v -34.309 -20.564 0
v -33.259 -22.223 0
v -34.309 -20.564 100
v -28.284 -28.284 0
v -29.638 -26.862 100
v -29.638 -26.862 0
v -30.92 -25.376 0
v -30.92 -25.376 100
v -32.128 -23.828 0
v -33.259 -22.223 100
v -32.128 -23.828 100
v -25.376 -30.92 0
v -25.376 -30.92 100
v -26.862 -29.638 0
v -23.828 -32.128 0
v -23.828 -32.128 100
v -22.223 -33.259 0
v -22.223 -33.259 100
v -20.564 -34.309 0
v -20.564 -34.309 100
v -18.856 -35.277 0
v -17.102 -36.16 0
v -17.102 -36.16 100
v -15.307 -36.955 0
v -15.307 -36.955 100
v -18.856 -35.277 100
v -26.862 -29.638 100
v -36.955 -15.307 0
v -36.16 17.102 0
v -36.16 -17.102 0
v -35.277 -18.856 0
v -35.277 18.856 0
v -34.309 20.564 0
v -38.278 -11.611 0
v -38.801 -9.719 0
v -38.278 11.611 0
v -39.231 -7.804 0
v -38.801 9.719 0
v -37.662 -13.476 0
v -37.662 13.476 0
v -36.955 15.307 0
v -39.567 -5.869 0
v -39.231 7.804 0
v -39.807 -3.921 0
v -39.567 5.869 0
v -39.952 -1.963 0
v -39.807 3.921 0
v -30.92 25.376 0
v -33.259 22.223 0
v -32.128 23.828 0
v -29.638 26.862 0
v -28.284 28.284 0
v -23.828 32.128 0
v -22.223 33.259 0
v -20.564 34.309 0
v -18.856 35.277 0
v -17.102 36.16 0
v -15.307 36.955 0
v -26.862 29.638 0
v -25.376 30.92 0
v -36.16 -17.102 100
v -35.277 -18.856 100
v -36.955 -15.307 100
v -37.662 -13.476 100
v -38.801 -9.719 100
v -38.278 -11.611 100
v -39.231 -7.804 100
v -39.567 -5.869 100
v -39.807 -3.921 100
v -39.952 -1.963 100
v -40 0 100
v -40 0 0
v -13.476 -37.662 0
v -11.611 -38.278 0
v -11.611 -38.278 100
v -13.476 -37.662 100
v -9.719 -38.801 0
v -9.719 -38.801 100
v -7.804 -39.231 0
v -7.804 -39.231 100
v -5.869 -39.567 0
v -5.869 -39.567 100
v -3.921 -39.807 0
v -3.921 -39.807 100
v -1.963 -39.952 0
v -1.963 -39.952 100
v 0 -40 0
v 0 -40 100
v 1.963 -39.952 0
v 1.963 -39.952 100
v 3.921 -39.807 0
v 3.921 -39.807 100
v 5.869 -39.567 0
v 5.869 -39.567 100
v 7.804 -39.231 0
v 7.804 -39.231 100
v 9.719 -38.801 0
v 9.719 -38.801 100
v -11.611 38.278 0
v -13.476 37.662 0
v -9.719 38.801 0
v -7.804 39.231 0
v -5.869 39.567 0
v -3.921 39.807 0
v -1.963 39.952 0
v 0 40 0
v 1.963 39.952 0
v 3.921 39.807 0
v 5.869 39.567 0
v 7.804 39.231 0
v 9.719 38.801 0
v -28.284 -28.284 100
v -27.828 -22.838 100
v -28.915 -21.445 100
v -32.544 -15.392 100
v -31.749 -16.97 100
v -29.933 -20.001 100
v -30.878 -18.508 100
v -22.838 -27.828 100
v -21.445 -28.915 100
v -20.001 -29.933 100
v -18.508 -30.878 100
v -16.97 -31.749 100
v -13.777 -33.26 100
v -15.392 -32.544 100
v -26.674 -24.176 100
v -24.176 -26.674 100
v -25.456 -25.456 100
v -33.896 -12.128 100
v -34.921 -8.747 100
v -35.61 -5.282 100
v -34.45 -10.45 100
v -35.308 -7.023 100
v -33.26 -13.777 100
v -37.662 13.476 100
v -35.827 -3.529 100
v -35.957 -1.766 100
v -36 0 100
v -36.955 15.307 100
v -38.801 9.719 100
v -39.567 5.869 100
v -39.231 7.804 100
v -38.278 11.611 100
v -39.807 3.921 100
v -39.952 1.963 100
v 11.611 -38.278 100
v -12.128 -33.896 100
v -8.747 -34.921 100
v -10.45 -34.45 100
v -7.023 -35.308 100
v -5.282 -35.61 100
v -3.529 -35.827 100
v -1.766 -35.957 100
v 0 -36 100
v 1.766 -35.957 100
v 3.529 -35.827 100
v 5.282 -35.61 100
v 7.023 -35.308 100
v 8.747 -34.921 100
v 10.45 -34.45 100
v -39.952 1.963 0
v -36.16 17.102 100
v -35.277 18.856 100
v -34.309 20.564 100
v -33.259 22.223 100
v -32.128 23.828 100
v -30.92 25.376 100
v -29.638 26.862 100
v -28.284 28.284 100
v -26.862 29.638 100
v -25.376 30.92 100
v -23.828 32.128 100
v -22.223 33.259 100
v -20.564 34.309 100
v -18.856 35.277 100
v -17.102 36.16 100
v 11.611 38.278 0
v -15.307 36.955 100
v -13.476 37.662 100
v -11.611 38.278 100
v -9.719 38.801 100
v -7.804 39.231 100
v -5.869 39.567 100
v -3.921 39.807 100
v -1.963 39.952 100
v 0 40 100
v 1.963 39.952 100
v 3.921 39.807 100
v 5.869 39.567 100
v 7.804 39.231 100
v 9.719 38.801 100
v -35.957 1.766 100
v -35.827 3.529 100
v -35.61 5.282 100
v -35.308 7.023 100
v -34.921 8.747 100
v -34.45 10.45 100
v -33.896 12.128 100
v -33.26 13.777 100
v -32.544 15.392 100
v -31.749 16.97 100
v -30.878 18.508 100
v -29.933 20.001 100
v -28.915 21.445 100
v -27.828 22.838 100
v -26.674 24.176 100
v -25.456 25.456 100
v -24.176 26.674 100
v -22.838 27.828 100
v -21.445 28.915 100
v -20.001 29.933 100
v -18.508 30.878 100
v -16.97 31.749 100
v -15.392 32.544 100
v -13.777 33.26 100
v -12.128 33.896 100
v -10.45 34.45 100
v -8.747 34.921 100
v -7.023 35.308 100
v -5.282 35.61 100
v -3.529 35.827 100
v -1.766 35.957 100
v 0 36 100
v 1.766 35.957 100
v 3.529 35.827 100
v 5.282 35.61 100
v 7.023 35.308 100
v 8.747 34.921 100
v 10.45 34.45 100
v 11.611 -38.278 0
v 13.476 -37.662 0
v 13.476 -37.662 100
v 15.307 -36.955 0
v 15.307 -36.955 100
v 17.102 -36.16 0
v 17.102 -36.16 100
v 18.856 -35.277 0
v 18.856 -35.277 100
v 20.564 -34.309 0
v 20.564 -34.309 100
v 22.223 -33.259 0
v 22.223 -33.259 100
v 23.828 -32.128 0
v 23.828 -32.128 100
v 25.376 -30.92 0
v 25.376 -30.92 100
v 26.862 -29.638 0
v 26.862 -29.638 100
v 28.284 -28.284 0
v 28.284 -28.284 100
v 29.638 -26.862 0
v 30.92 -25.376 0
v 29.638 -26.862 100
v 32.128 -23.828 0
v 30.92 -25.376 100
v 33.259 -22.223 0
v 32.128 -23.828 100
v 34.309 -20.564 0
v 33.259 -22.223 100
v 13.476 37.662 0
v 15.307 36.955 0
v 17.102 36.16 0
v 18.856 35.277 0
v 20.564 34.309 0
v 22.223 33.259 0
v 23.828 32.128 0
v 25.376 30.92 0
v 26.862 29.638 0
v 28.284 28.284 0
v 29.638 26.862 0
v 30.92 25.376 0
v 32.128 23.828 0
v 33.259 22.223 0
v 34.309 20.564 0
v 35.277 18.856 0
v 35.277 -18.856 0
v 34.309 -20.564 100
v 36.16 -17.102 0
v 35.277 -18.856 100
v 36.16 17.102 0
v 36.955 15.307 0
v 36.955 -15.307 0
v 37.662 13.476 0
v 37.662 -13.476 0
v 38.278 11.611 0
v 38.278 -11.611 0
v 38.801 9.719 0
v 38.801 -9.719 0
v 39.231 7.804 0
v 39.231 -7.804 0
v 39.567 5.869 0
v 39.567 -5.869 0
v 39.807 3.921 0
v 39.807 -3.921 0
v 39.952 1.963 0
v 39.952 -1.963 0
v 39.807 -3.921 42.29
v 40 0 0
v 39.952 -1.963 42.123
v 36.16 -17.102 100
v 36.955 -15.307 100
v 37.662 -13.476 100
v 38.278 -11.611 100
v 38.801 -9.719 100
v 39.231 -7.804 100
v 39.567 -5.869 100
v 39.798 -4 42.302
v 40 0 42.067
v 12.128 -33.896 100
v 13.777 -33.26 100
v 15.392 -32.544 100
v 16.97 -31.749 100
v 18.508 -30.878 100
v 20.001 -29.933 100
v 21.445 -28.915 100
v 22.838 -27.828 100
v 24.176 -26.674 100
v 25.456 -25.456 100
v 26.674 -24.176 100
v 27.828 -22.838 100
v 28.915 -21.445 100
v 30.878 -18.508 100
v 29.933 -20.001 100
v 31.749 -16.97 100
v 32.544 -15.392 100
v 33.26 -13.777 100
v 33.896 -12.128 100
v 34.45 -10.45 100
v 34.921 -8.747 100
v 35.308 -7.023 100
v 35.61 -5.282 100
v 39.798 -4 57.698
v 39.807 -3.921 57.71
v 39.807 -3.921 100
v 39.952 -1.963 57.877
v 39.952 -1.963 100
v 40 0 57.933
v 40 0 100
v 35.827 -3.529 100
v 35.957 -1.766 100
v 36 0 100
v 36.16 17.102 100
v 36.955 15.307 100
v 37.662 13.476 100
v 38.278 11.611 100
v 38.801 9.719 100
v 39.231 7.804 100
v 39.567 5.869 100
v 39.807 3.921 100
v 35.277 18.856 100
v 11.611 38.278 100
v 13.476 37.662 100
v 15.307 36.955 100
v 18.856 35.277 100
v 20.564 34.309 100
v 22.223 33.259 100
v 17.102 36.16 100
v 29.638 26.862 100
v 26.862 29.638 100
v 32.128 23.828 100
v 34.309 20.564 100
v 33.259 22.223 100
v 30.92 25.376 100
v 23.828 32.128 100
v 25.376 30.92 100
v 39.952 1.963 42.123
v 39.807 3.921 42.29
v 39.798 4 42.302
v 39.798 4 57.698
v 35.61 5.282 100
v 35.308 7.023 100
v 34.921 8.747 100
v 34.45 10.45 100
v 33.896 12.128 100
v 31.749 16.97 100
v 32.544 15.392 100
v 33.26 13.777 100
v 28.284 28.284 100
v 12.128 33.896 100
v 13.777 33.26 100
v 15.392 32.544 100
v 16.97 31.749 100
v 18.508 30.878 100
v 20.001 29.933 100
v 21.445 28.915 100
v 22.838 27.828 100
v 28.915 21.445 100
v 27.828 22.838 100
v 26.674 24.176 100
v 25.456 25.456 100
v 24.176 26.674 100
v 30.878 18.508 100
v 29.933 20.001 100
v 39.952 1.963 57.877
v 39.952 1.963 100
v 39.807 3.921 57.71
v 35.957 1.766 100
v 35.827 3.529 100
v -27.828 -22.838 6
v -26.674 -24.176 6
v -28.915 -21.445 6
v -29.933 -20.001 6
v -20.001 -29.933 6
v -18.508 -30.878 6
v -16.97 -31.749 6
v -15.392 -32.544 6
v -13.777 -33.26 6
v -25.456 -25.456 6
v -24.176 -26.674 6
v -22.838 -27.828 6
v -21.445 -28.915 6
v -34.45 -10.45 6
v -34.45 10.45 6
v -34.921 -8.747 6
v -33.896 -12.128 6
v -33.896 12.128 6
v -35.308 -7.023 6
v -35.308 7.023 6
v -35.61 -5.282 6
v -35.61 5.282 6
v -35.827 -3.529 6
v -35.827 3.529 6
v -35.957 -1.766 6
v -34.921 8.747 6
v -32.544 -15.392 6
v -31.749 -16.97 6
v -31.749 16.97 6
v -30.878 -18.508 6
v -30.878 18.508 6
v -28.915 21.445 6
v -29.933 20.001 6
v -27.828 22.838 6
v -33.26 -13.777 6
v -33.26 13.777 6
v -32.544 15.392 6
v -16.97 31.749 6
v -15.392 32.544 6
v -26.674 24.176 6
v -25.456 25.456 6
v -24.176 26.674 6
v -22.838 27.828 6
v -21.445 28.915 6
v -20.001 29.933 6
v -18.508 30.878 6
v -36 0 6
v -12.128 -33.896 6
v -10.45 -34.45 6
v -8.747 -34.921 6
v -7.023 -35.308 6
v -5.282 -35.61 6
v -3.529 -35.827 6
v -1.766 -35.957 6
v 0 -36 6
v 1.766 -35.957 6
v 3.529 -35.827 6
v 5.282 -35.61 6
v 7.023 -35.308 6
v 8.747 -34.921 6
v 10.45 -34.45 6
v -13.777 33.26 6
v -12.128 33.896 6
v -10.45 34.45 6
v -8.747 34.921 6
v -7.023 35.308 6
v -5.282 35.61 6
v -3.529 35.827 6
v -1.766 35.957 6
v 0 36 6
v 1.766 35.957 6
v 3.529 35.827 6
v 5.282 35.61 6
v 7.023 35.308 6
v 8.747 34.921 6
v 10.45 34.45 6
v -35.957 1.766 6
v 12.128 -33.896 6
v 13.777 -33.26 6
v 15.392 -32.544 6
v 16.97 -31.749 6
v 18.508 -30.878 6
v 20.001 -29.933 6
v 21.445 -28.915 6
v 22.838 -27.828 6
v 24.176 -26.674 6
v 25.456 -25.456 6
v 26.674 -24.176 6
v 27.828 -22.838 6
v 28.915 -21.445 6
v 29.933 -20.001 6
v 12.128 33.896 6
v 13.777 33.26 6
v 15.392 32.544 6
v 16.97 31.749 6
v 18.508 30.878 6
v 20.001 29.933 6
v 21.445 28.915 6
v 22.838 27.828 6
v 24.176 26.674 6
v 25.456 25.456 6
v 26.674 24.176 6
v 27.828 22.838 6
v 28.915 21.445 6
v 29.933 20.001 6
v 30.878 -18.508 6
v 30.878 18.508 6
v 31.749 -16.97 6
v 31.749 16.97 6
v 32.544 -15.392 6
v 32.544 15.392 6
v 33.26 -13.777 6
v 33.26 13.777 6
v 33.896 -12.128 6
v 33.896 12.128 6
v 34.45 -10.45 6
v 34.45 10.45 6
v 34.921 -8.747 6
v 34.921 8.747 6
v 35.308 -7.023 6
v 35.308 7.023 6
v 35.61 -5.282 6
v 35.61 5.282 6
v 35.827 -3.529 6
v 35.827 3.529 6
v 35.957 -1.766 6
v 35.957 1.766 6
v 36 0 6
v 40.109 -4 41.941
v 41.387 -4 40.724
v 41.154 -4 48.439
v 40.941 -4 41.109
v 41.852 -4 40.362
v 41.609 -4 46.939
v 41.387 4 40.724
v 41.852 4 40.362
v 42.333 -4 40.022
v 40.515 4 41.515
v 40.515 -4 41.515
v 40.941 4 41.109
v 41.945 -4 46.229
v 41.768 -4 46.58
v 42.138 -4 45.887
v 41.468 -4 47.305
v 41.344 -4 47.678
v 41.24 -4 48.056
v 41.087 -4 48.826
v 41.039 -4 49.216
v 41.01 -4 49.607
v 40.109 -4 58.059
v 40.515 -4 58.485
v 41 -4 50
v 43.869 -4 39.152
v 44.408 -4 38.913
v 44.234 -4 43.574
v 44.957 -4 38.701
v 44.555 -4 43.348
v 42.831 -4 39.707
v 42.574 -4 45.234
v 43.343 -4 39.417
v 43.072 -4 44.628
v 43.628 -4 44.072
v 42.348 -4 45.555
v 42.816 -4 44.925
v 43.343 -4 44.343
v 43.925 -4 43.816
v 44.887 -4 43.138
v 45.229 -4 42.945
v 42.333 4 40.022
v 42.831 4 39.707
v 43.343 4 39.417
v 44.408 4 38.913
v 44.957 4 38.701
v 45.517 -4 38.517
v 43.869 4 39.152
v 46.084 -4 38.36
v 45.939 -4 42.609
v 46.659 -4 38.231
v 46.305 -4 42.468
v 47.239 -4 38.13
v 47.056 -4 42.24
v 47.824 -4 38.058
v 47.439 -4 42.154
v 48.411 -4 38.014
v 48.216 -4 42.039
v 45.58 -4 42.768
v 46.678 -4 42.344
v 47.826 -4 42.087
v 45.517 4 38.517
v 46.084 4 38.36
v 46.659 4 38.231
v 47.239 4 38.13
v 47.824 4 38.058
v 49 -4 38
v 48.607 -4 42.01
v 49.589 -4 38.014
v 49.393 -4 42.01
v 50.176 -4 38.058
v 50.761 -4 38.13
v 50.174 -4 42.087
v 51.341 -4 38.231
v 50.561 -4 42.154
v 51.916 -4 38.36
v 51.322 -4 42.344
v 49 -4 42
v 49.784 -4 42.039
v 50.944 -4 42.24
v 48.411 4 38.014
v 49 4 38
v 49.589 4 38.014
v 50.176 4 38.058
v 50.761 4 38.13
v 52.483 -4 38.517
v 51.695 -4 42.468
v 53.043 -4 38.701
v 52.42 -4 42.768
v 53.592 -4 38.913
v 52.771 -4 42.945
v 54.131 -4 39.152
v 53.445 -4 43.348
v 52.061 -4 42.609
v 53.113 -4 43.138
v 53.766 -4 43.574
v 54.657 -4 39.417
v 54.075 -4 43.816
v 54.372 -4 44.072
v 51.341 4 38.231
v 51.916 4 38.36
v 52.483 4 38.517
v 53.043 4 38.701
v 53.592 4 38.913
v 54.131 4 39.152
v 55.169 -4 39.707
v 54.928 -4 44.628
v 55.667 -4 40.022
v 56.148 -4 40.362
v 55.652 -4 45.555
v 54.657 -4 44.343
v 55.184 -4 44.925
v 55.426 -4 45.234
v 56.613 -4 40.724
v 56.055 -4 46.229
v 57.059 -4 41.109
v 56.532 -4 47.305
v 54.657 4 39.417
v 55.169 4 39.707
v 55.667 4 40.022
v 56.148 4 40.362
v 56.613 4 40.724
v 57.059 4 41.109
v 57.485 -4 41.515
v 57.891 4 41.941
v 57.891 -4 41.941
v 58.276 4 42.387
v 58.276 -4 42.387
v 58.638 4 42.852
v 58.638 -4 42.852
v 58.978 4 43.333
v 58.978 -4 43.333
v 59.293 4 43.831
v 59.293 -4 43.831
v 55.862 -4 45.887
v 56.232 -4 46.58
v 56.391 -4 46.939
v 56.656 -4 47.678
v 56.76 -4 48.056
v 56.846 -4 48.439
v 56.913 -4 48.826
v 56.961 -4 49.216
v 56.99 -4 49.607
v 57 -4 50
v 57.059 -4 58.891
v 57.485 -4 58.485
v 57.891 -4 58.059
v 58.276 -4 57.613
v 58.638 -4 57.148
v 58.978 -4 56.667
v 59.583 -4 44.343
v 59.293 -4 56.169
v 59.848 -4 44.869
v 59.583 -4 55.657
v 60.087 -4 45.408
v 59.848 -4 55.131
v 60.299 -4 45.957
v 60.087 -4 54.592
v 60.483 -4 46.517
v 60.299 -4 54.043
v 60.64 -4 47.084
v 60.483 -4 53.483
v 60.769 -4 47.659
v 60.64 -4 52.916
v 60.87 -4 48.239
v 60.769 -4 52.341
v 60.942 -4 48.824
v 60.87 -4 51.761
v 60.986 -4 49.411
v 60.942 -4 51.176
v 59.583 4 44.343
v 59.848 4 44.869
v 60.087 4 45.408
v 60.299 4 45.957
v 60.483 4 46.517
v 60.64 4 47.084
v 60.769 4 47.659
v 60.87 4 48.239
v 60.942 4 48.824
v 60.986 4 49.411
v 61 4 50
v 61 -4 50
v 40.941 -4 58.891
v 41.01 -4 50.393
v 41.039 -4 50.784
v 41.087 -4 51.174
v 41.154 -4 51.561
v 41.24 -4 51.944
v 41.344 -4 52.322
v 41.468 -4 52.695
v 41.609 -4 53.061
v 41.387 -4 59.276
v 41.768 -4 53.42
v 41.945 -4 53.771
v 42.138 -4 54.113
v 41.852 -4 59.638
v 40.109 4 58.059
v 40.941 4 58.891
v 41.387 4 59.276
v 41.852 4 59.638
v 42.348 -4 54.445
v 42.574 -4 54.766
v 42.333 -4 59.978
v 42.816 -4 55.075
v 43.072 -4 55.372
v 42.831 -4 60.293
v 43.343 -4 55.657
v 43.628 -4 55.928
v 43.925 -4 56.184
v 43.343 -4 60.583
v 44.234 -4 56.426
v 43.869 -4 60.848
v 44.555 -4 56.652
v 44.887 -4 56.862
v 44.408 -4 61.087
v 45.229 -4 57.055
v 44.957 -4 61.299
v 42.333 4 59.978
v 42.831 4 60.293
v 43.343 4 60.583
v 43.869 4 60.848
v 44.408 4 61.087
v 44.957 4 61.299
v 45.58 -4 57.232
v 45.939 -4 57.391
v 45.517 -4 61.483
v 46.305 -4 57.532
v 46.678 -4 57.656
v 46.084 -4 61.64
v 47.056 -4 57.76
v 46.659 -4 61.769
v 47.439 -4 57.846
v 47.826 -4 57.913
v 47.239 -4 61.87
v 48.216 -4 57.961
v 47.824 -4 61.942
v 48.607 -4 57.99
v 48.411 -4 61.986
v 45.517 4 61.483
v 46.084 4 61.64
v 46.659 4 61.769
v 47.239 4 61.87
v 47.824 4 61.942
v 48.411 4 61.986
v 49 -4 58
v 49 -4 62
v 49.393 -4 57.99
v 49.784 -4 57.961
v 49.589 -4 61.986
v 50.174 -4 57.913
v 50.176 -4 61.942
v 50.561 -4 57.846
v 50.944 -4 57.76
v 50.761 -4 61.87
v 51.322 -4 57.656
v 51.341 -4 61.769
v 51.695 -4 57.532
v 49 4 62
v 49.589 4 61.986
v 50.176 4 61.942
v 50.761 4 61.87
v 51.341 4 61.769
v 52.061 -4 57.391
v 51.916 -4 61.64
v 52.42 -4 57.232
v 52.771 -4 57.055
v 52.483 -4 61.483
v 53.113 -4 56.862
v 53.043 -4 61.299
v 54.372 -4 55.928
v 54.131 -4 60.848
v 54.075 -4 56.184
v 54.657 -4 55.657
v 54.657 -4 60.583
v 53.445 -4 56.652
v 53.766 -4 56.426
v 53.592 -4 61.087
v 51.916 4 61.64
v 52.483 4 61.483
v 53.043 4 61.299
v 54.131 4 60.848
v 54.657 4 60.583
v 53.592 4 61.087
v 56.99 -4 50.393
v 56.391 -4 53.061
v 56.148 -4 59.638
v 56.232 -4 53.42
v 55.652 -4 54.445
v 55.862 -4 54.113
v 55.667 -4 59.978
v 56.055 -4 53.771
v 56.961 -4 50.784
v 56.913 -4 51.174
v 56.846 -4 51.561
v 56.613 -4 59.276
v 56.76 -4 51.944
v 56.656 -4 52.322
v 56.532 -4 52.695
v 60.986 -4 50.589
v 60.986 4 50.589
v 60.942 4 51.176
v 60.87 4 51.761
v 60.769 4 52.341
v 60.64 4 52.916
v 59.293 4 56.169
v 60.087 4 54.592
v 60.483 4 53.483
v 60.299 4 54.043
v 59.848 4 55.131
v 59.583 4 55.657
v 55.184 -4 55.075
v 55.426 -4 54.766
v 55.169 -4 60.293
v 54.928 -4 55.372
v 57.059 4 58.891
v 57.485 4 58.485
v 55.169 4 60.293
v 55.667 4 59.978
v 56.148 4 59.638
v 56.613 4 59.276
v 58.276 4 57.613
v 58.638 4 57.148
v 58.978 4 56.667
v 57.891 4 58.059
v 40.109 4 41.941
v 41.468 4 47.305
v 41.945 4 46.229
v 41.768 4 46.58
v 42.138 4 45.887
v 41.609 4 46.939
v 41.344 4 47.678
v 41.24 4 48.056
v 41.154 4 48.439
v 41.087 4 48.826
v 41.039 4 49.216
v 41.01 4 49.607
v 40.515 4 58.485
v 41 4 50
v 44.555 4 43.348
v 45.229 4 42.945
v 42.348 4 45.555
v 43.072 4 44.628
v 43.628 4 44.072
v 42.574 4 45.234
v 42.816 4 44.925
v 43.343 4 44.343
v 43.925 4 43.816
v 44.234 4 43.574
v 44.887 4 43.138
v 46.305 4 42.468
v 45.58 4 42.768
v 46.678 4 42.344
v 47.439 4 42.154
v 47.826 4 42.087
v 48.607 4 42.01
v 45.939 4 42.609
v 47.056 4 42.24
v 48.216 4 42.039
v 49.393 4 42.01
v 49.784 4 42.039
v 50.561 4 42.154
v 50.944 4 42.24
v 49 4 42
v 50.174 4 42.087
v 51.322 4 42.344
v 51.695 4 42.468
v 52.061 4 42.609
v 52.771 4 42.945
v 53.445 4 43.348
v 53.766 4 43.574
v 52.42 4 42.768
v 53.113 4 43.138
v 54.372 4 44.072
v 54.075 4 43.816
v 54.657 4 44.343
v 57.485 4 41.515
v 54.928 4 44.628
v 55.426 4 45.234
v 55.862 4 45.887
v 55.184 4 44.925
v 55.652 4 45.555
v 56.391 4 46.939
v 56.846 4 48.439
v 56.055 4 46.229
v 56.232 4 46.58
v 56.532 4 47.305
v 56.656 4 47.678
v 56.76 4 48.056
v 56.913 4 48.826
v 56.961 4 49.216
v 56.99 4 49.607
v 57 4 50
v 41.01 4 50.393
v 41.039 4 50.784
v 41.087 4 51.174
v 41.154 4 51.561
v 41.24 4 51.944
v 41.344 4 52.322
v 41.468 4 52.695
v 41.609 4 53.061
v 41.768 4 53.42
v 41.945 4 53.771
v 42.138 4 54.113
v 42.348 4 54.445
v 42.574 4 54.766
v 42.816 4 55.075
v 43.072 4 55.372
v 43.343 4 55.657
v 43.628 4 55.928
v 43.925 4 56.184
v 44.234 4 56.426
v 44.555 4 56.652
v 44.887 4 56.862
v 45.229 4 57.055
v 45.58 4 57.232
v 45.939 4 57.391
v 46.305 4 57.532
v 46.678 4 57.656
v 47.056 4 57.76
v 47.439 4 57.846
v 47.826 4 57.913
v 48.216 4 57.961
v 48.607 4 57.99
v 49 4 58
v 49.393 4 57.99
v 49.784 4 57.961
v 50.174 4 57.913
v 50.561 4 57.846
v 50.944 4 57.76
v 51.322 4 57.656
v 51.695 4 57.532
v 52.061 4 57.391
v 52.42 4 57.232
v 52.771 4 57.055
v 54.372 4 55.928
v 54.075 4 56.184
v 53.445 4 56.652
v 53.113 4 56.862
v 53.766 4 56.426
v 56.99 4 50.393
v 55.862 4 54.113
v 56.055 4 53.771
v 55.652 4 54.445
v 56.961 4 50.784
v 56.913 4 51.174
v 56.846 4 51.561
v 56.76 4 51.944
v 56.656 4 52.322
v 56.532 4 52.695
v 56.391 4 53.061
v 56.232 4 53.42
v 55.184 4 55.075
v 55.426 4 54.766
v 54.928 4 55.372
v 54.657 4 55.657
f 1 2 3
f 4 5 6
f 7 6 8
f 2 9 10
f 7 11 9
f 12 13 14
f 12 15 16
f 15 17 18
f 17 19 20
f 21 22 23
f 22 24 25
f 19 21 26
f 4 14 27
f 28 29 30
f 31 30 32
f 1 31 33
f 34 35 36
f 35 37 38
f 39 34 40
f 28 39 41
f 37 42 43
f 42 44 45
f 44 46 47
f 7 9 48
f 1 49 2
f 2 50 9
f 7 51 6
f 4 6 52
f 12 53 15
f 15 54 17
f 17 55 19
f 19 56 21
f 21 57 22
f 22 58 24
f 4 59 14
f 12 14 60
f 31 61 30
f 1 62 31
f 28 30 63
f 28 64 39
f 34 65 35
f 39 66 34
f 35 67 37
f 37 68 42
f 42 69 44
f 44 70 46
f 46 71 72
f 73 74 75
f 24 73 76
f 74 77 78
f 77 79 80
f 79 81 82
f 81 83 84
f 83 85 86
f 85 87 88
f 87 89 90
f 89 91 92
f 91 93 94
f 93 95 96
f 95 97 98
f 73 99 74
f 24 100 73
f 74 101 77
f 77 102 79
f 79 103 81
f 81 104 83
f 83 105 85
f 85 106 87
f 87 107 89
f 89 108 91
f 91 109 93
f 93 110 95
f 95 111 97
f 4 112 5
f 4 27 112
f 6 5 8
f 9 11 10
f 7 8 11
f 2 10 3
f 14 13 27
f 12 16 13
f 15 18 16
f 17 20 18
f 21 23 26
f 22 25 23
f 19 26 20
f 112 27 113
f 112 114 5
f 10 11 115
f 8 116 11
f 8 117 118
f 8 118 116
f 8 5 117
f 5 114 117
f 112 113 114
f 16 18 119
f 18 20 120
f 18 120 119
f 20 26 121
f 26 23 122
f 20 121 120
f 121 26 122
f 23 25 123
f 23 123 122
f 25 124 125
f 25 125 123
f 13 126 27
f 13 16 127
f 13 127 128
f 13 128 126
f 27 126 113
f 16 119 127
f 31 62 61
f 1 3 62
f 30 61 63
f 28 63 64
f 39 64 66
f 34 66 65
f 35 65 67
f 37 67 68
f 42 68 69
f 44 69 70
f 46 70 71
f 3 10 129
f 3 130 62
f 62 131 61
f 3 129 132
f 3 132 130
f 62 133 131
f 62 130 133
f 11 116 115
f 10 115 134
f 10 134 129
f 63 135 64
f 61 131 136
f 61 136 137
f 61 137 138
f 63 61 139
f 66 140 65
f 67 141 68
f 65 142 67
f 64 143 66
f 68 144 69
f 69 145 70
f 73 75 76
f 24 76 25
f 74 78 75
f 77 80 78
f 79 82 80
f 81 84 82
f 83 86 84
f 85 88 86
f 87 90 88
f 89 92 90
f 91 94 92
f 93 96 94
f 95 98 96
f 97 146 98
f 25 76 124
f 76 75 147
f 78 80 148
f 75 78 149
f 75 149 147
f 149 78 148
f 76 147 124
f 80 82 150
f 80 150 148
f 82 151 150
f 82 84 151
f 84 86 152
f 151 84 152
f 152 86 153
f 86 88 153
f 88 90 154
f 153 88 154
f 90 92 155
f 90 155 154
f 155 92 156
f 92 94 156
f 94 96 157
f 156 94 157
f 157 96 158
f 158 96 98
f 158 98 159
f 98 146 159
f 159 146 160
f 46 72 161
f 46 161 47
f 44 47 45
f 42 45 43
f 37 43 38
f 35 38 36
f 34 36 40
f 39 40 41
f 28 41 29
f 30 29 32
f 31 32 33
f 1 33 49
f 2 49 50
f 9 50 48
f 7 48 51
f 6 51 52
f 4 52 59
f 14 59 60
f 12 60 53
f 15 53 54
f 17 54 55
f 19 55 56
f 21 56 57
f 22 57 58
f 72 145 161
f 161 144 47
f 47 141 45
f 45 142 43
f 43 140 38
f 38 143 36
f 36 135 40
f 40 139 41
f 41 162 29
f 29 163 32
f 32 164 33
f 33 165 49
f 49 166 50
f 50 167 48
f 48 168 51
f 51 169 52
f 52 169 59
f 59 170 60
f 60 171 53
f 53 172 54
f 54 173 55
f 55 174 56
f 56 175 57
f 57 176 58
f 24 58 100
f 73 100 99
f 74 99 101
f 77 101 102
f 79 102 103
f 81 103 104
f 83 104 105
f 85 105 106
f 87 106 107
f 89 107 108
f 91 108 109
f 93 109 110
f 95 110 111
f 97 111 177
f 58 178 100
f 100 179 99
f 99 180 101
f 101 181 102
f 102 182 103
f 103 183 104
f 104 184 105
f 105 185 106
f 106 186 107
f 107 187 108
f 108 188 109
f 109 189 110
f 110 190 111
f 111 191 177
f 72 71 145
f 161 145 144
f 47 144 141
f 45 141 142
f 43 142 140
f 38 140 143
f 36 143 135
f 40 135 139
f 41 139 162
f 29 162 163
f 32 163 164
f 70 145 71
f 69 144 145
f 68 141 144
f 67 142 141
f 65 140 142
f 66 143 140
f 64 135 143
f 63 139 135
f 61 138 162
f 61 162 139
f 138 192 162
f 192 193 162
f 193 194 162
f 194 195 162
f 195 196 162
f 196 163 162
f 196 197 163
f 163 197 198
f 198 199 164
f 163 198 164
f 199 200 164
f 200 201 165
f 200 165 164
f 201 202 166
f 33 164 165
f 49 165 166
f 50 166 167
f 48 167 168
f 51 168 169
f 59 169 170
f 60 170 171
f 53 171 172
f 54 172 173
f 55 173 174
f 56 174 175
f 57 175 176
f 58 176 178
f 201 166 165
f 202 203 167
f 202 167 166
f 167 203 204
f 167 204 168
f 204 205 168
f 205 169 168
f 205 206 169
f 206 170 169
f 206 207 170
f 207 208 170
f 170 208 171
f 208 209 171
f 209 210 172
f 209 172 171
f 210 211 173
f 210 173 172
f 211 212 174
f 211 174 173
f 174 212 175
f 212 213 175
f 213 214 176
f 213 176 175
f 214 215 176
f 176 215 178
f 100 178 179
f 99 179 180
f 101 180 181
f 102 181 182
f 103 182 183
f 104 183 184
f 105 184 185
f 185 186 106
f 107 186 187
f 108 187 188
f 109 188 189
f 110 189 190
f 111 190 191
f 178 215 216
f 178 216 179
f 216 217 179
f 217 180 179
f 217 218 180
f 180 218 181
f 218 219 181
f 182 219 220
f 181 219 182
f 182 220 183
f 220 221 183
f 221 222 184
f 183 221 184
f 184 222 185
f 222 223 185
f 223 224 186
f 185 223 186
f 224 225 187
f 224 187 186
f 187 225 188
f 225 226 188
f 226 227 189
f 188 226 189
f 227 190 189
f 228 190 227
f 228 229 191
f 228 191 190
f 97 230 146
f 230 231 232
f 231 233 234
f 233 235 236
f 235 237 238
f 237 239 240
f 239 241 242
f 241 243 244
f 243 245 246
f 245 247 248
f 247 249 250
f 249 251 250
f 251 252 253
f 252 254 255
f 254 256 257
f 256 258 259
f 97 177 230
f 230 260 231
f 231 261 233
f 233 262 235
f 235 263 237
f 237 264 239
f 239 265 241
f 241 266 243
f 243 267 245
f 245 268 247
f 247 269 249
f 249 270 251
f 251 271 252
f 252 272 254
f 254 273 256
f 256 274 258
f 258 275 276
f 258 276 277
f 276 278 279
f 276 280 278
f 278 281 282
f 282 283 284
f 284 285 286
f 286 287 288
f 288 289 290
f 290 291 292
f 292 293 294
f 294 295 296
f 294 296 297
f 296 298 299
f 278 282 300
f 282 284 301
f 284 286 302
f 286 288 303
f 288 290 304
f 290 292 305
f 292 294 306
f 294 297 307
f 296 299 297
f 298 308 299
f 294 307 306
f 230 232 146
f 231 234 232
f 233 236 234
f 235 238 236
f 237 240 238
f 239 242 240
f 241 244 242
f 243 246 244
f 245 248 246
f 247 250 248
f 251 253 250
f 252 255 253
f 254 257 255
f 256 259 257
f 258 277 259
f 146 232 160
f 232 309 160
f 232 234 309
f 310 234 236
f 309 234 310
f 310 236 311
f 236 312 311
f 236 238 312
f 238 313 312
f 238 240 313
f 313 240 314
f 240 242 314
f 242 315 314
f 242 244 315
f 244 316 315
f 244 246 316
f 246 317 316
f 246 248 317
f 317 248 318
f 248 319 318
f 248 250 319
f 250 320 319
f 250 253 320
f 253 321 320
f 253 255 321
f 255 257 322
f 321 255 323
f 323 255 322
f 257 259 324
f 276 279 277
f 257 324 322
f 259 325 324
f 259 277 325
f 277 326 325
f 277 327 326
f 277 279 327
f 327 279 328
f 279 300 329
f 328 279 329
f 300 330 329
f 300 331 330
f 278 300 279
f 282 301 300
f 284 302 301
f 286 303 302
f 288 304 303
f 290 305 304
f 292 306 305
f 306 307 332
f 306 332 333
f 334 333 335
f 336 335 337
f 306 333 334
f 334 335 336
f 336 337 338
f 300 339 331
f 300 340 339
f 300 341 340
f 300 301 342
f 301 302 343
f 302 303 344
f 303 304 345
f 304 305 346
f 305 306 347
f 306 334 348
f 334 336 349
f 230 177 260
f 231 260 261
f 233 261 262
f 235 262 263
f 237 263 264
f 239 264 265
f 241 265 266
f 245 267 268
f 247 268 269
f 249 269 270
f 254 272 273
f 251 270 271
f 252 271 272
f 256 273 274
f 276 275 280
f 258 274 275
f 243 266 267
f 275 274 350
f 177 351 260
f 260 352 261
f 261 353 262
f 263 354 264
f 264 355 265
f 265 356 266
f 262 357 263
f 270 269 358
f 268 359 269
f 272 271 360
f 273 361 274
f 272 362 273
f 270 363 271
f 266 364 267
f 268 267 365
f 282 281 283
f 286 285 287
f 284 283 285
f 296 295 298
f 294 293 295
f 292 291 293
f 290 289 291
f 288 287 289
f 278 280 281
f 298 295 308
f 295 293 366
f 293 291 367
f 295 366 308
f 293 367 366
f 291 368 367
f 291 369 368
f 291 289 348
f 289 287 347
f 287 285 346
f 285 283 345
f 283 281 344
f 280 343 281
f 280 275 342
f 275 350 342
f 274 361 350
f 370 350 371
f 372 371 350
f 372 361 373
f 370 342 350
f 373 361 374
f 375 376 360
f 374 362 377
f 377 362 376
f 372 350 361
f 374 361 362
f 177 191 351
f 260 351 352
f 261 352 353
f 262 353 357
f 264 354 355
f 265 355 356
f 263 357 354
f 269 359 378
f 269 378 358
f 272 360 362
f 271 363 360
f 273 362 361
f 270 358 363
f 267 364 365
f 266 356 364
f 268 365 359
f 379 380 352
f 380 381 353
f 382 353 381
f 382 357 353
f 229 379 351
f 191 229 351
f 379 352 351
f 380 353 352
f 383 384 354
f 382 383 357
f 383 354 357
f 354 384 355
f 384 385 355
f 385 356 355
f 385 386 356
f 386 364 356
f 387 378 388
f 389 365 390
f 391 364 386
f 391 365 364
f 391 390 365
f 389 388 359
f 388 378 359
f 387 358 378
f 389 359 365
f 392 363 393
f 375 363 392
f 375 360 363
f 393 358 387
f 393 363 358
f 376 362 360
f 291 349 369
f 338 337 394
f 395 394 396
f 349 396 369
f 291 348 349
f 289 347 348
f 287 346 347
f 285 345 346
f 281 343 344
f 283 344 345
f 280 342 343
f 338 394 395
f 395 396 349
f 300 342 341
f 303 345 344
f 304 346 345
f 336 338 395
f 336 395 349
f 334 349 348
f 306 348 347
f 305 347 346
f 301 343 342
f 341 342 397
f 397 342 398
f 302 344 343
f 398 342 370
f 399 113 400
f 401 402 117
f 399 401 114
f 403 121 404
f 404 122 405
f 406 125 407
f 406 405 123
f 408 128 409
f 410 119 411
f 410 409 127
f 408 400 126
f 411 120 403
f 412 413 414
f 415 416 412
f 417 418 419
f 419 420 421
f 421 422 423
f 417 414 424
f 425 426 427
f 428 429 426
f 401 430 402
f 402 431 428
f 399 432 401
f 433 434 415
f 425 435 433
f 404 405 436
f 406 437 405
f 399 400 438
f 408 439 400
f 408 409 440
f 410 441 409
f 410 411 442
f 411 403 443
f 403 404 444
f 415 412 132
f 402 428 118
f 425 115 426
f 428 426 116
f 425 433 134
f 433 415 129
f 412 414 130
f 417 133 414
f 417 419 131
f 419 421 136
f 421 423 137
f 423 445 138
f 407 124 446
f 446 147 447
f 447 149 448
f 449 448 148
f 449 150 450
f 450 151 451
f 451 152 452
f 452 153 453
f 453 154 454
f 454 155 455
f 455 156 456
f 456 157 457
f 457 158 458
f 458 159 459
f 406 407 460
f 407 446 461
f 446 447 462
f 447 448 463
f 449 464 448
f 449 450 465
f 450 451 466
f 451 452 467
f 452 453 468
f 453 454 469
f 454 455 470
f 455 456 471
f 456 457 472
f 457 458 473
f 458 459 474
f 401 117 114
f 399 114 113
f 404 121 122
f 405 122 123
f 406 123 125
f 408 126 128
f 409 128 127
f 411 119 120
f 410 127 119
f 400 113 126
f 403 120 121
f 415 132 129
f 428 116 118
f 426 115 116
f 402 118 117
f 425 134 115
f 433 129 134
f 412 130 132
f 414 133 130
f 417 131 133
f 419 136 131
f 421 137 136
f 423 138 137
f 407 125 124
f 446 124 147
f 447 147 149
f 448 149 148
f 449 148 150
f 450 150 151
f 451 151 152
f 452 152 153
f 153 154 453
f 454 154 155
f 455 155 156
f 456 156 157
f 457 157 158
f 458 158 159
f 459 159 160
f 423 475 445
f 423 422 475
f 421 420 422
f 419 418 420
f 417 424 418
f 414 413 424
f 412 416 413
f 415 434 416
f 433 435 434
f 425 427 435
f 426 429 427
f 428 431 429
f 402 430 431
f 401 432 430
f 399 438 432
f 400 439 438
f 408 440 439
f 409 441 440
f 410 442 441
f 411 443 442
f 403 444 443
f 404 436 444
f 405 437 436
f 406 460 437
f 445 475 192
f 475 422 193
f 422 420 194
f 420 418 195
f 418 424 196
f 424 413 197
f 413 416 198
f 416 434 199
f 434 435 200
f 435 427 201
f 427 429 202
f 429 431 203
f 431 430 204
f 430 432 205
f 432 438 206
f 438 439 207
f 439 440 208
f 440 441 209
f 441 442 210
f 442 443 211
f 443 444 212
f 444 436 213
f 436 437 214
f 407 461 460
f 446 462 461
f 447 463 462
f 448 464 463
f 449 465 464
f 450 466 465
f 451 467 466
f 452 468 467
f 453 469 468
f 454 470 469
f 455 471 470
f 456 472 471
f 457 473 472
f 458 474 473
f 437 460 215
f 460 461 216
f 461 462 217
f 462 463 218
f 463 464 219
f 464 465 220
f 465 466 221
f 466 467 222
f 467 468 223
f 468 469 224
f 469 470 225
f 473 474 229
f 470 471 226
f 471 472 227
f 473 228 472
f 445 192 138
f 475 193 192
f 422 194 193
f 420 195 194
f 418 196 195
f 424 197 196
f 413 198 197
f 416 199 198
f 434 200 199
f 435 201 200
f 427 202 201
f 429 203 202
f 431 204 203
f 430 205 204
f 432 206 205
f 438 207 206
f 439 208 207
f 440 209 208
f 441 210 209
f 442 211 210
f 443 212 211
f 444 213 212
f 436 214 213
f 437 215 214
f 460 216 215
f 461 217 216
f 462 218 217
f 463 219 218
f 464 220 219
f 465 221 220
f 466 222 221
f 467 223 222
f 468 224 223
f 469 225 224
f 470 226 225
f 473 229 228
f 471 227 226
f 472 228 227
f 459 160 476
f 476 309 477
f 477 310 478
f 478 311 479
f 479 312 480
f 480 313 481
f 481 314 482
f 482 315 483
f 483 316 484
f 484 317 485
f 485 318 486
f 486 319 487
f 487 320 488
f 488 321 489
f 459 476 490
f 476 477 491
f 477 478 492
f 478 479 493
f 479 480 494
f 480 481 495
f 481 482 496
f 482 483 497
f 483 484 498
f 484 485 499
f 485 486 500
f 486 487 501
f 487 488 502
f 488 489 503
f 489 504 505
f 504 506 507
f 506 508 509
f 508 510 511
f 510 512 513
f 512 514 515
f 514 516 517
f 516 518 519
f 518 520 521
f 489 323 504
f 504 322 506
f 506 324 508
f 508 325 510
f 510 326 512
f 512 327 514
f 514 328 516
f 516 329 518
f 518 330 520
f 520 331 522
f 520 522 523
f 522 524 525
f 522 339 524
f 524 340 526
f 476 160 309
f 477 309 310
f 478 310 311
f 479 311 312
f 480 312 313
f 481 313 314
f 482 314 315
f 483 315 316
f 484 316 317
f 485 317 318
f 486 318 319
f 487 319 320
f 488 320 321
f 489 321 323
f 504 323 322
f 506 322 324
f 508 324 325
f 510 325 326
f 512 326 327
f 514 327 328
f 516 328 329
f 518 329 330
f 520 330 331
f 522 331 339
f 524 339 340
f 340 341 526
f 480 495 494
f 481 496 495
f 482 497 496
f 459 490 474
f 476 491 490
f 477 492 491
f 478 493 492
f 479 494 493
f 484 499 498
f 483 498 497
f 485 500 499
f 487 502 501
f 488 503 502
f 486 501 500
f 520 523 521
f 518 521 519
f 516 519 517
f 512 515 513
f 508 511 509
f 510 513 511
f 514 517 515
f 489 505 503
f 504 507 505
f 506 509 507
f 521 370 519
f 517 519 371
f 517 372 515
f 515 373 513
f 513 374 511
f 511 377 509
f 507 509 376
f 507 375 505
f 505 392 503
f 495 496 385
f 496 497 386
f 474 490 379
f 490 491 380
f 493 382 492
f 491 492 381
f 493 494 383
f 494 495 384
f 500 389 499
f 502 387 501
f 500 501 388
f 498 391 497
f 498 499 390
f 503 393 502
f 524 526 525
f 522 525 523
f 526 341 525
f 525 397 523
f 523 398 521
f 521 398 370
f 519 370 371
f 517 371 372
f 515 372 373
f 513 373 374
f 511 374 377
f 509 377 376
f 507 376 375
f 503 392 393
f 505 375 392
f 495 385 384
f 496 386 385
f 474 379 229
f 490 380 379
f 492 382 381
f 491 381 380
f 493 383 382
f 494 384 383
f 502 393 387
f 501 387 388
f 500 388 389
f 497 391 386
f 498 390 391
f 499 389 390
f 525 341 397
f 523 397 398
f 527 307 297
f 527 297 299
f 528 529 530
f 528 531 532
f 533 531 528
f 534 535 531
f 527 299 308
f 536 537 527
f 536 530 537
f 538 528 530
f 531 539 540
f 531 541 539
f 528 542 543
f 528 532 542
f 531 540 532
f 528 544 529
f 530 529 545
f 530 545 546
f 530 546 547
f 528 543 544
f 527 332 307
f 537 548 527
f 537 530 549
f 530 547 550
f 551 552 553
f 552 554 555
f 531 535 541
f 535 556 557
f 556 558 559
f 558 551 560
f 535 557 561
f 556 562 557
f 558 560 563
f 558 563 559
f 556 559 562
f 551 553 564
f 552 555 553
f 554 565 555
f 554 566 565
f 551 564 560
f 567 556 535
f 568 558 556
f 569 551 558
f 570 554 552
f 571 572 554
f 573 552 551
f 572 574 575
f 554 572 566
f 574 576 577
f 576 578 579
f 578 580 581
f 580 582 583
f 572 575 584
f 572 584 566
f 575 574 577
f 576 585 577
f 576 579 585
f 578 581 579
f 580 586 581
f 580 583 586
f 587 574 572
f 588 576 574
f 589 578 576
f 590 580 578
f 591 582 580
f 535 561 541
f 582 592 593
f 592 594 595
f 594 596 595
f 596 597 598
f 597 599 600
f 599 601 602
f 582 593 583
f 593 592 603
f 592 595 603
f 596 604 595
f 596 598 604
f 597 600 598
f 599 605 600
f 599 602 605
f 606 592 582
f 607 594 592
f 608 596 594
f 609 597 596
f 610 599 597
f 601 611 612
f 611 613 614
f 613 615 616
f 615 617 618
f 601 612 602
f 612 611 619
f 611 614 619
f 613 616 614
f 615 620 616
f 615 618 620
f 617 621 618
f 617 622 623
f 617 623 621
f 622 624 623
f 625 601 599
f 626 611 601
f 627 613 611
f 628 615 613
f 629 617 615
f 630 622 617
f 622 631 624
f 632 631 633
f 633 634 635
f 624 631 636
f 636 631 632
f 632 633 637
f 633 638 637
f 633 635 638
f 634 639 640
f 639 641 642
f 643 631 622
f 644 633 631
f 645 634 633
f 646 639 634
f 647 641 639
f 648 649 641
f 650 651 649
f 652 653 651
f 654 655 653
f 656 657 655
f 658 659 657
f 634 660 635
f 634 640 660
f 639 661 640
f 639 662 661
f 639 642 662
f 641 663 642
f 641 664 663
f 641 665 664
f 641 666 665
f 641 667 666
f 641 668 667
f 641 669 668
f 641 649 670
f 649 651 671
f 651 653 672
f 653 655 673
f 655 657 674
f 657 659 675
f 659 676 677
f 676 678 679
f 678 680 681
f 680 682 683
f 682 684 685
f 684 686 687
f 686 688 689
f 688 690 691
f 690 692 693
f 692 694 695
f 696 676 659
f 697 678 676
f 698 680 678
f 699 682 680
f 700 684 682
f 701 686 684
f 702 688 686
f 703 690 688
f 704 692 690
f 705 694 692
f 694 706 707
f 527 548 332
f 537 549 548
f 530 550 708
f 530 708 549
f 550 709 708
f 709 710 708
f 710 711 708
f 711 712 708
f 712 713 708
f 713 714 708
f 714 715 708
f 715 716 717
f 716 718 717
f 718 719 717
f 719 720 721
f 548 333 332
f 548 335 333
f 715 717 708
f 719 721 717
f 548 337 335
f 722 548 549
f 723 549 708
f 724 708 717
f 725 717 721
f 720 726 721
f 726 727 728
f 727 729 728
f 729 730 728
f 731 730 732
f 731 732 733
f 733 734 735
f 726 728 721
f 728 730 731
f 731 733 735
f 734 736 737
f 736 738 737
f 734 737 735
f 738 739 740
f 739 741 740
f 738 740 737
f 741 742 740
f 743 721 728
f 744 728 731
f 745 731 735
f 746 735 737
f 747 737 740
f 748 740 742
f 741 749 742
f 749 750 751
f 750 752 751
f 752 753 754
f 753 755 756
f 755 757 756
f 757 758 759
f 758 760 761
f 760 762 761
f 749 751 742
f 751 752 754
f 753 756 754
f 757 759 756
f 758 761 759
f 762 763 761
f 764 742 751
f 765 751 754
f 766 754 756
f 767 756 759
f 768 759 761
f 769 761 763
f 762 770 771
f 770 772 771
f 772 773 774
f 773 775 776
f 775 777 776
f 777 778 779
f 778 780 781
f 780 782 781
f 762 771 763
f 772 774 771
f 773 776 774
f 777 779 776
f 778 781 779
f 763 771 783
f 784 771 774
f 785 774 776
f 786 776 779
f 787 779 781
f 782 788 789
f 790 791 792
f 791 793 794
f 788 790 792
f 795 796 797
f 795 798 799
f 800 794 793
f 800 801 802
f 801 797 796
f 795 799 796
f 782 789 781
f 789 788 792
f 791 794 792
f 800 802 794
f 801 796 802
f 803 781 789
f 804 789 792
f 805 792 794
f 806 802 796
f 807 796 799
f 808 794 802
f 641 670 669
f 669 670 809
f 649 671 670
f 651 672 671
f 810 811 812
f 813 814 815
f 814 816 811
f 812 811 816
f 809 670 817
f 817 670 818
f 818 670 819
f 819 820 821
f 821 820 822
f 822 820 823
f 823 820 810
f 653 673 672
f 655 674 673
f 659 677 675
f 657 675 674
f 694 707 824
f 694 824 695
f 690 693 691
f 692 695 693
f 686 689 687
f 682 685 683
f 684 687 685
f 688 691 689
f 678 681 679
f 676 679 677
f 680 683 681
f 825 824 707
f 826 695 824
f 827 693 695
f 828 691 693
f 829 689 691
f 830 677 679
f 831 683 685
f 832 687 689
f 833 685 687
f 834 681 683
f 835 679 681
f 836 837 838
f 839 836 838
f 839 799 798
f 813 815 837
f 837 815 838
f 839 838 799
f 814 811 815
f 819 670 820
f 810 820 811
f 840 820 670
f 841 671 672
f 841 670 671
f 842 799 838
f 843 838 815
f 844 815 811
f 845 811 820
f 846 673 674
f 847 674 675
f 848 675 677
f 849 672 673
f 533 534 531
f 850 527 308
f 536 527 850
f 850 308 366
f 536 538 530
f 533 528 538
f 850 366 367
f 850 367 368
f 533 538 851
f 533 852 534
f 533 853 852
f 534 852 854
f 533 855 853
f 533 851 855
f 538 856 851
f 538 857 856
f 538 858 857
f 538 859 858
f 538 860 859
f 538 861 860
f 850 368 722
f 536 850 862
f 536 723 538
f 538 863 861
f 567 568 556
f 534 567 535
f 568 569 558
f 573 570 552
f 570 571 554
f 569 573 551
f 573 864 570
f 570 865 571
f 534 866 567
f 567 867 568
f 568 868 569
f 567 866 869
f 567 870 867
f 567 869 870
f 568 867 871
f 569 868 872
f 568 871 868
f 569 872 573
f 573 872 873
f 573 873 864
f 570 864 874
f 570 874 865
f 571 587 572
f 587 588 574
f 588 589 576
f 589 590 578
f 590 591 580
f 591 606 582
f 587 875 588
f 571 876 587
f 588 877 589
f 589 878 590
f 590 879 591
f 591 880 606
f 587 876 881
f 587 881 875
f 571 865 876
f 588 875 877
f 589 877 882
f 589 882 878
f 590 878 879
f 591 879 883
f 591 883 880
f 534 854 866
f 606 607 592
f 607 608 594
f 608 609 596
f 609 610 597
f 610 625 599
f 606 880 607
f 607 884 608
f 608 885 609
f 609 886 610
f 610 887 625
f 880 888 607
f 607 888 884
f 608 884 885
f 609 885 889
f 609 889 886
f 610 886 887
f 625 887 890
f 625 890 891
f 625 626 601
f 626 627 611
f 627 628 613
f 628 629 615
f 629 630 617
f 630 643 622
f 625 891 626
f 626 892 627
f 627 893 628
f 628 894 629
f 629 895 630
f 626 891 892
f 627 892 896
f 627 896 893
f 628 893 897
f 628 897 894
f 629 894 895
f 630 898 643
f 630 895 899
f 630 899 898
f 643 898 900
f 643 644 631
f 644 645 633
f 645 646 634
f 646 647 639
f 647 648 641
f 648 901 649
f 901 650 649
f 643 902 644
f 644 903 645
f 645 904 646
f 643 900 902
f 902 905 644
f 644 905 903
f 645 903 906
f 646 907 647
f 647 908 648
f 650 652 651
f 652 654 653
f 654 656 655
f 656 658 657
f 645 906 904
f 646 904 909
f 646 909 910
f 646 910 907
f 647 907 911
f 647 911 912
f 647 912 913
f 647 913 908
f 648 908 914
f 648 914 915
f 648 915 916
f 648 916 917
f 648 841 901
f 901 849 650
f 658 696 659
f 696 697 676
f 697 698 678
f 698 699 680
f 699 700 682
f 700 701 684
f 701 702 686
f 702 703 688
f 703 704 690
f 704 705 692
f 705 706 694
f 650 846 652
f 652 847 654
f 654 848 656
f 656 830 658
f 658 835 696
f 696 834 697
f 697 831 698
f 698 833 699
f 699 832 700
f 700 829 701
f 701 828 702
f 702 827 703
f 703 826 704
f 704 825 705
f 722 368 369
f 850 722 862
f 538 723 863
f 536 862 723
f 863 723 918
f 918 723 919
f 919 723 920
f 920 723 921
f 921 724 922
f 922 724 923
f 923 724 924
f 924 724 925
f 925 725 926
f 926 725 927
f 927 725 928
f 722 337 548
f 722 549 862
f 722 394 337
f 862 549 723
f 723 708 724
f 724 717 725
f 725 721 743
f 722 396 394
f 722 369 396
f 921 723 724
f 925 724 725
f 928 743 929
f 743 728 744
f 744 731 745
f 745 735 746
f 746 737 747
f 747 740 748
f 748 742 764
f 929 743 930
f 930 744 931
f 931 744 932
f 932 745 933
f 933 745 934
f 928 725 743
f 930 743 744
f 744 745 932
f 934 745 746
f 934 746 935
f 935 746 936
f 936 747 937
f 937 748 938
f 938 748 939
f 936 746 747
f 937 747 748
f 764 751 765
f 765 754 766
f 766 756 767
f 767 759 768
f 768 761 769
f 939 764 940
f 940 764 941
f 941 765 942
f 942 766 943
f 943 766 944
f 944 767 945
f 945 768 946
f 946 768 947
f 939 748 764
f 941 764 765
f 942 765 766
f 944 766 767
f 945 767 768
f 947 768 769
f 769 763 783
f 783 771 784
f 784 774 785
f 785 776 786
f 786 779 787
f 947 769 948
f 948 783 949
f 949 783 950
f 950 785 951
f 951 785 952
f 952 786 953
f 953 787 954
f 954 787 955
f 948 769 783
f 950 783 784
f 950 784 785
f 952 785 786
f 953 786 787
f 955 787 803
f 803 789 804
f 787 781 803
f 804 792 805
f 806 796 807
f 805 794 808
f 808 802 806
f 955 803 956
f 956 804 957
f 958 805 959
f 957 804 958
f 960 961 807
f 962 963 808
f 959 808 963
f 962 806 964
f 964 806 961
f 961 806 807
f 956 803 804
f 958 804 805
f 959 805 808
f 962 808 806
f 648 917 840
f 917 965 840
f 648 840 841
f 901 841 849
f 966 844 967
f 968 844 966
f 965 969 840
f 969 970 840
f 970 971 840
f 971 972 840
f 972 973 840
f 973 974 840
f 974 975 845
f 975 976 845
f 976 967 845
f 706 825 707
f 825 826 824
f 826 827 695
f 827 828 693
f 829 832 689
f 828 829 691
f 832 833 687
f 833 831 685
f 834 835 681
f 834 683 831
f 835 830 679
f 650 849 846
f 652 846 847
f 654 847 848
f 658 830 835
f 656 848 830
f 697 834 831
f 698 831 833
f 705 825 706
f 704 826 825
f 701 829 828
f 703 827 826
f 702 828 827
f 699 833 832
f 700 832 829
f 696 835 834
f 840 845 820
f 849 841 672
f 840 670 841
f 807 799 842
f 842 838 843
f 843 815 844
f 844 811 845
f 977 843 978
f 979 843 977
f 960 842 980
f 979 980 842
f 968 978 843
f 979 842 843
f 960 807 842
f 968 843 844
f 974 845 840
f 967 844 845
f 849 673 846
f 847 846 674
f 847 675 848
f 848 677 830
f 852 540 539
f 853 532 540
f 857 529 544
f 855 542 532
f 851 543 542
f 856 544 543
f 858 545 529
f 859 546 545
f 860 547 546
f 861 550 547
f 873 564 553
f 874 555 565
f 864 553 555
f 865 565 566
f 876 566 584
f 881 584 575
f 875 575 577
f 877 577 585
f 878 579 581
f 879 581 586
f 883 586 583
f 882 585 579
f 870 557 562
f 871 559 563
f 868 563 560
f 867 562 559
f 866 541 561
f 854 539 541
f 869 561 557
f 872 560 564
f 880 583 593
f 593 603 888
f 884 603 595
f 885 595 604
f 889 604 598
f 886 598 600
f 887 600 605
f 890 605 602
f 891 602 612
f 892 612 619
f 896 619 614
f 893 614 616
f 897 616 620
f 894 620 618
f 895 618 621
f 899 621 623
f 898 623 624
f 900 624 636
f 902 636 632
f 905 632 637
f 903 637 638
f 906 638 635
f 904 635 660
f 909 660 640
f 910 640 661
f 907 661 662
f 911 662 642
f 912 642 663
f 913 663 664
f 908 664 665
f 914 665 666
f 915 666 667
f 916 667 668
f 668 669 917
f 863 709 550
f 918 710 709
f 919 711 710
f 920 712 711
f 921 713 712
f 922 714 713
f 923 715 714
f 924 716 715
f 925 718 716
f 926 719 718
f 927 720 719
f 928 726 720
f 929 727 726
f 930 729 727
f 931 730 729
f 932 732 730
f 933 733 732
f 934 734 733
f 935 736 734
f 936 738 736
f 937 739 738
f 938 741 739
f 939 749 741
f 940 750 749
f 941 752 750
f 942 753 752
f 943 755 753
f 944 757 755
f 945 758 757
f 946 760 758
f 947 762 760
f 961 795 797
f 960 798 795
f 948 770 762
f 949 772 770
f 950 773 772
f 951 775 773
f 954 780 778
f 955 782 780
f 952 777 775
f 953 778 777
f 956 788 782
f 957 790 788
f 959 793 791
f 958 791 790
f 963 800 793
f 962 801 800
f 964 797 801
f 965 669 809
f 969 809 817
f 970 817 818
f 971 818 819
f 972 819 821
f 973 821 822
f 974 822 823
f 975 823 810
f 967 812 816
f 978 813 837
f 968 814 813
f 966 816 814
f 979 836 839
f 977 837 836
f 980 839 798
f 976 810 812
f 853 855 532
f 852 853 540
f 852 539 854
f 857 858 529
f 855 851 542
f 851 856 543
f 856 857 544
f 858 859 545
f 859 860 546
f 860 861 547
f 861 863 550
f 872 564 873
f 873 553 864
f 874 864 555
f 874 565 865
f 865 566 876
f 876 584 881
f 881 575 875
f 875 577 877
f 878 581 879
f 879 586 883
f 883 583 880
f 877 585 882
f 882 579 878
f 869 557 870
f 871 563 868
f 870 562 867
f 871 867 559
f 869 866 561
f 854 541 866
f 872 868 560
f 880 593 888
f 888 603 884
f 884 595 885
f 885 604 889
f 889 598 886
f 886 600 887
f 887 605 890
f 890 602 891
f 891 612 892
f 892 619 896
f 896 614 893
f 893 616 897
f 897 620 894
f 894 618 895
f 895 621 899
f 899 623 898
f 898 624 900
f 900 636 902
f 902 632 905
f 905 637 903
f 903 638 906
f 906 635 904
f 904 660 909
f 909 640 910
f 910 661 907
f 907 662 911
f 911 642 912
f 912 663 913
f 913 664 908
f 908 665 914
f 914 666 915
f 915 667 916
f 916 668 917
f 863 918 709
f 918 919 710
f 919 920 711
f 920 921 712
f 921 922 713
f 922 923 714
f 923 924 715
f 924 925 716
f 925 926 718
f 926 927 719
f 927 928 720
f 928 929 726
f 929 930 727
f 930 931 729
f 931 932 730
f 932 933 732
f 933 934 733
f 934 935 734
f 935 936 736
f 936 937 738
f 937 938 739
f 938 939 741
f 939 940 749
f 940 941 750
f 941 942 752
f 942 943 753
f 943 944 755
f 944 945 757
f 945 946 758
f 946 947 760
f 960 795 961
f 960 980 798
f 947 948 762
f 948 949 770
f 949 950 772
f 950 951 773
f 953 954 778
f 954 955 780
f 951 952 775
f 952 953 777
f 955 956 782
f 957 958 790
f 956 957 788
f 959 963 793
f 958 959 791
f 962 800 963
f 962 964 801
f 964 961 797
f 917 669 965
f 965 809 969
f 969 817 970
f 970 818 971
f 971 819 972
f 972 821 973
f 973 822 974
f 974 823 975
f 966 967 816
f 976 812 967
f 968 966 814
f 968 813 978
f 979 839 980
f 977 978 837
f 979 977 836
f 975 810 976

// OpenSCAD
$fn = 128;

cup_outer_diameter = 80;
cup_height = 100;
wall_thickness = 4;
bottom_thickness = 6;

handle_outer_radius = 12;
handle_ring_thickness = 4;
handle_depth = 8;

cup_outer_radius = cup_outer_diameter / 2;
cup_inner_radius = cup_outer_radius - wall_thickness;
handle_inner_radius = handle_outer_radius - handle_ring_thickness;

// 取手の穴を外周より外側に置き、取手本体を側壁に接合する。
handle_center_x = cup_outer_radius + handle_inner_radius + 1;
handle_center_z = cup_height / 2;

epsilon = 0.1;

union() {
    difference() {
        cylinder(h = cup_height, r = cup_outer_radius);

        translate([0, 0, bottom_thickness])
            cylinder(
                h = cup_height - bottom_thickness + epsilon,
                r = cup_inner_radius
            );
    }

    translate([handle_center_x, 0, handle_center_z])
        rotate([90, 0, 0])
            difference() {
                cylinder(
                    h = handle_depth,
                    r = handle_outer_radius,
                    center = true
                );

                cylinder(
                    h = handle_depth + 2 * epsilon,
                    r = handle_inner_radius,
                    center = true
                );
            }
}
